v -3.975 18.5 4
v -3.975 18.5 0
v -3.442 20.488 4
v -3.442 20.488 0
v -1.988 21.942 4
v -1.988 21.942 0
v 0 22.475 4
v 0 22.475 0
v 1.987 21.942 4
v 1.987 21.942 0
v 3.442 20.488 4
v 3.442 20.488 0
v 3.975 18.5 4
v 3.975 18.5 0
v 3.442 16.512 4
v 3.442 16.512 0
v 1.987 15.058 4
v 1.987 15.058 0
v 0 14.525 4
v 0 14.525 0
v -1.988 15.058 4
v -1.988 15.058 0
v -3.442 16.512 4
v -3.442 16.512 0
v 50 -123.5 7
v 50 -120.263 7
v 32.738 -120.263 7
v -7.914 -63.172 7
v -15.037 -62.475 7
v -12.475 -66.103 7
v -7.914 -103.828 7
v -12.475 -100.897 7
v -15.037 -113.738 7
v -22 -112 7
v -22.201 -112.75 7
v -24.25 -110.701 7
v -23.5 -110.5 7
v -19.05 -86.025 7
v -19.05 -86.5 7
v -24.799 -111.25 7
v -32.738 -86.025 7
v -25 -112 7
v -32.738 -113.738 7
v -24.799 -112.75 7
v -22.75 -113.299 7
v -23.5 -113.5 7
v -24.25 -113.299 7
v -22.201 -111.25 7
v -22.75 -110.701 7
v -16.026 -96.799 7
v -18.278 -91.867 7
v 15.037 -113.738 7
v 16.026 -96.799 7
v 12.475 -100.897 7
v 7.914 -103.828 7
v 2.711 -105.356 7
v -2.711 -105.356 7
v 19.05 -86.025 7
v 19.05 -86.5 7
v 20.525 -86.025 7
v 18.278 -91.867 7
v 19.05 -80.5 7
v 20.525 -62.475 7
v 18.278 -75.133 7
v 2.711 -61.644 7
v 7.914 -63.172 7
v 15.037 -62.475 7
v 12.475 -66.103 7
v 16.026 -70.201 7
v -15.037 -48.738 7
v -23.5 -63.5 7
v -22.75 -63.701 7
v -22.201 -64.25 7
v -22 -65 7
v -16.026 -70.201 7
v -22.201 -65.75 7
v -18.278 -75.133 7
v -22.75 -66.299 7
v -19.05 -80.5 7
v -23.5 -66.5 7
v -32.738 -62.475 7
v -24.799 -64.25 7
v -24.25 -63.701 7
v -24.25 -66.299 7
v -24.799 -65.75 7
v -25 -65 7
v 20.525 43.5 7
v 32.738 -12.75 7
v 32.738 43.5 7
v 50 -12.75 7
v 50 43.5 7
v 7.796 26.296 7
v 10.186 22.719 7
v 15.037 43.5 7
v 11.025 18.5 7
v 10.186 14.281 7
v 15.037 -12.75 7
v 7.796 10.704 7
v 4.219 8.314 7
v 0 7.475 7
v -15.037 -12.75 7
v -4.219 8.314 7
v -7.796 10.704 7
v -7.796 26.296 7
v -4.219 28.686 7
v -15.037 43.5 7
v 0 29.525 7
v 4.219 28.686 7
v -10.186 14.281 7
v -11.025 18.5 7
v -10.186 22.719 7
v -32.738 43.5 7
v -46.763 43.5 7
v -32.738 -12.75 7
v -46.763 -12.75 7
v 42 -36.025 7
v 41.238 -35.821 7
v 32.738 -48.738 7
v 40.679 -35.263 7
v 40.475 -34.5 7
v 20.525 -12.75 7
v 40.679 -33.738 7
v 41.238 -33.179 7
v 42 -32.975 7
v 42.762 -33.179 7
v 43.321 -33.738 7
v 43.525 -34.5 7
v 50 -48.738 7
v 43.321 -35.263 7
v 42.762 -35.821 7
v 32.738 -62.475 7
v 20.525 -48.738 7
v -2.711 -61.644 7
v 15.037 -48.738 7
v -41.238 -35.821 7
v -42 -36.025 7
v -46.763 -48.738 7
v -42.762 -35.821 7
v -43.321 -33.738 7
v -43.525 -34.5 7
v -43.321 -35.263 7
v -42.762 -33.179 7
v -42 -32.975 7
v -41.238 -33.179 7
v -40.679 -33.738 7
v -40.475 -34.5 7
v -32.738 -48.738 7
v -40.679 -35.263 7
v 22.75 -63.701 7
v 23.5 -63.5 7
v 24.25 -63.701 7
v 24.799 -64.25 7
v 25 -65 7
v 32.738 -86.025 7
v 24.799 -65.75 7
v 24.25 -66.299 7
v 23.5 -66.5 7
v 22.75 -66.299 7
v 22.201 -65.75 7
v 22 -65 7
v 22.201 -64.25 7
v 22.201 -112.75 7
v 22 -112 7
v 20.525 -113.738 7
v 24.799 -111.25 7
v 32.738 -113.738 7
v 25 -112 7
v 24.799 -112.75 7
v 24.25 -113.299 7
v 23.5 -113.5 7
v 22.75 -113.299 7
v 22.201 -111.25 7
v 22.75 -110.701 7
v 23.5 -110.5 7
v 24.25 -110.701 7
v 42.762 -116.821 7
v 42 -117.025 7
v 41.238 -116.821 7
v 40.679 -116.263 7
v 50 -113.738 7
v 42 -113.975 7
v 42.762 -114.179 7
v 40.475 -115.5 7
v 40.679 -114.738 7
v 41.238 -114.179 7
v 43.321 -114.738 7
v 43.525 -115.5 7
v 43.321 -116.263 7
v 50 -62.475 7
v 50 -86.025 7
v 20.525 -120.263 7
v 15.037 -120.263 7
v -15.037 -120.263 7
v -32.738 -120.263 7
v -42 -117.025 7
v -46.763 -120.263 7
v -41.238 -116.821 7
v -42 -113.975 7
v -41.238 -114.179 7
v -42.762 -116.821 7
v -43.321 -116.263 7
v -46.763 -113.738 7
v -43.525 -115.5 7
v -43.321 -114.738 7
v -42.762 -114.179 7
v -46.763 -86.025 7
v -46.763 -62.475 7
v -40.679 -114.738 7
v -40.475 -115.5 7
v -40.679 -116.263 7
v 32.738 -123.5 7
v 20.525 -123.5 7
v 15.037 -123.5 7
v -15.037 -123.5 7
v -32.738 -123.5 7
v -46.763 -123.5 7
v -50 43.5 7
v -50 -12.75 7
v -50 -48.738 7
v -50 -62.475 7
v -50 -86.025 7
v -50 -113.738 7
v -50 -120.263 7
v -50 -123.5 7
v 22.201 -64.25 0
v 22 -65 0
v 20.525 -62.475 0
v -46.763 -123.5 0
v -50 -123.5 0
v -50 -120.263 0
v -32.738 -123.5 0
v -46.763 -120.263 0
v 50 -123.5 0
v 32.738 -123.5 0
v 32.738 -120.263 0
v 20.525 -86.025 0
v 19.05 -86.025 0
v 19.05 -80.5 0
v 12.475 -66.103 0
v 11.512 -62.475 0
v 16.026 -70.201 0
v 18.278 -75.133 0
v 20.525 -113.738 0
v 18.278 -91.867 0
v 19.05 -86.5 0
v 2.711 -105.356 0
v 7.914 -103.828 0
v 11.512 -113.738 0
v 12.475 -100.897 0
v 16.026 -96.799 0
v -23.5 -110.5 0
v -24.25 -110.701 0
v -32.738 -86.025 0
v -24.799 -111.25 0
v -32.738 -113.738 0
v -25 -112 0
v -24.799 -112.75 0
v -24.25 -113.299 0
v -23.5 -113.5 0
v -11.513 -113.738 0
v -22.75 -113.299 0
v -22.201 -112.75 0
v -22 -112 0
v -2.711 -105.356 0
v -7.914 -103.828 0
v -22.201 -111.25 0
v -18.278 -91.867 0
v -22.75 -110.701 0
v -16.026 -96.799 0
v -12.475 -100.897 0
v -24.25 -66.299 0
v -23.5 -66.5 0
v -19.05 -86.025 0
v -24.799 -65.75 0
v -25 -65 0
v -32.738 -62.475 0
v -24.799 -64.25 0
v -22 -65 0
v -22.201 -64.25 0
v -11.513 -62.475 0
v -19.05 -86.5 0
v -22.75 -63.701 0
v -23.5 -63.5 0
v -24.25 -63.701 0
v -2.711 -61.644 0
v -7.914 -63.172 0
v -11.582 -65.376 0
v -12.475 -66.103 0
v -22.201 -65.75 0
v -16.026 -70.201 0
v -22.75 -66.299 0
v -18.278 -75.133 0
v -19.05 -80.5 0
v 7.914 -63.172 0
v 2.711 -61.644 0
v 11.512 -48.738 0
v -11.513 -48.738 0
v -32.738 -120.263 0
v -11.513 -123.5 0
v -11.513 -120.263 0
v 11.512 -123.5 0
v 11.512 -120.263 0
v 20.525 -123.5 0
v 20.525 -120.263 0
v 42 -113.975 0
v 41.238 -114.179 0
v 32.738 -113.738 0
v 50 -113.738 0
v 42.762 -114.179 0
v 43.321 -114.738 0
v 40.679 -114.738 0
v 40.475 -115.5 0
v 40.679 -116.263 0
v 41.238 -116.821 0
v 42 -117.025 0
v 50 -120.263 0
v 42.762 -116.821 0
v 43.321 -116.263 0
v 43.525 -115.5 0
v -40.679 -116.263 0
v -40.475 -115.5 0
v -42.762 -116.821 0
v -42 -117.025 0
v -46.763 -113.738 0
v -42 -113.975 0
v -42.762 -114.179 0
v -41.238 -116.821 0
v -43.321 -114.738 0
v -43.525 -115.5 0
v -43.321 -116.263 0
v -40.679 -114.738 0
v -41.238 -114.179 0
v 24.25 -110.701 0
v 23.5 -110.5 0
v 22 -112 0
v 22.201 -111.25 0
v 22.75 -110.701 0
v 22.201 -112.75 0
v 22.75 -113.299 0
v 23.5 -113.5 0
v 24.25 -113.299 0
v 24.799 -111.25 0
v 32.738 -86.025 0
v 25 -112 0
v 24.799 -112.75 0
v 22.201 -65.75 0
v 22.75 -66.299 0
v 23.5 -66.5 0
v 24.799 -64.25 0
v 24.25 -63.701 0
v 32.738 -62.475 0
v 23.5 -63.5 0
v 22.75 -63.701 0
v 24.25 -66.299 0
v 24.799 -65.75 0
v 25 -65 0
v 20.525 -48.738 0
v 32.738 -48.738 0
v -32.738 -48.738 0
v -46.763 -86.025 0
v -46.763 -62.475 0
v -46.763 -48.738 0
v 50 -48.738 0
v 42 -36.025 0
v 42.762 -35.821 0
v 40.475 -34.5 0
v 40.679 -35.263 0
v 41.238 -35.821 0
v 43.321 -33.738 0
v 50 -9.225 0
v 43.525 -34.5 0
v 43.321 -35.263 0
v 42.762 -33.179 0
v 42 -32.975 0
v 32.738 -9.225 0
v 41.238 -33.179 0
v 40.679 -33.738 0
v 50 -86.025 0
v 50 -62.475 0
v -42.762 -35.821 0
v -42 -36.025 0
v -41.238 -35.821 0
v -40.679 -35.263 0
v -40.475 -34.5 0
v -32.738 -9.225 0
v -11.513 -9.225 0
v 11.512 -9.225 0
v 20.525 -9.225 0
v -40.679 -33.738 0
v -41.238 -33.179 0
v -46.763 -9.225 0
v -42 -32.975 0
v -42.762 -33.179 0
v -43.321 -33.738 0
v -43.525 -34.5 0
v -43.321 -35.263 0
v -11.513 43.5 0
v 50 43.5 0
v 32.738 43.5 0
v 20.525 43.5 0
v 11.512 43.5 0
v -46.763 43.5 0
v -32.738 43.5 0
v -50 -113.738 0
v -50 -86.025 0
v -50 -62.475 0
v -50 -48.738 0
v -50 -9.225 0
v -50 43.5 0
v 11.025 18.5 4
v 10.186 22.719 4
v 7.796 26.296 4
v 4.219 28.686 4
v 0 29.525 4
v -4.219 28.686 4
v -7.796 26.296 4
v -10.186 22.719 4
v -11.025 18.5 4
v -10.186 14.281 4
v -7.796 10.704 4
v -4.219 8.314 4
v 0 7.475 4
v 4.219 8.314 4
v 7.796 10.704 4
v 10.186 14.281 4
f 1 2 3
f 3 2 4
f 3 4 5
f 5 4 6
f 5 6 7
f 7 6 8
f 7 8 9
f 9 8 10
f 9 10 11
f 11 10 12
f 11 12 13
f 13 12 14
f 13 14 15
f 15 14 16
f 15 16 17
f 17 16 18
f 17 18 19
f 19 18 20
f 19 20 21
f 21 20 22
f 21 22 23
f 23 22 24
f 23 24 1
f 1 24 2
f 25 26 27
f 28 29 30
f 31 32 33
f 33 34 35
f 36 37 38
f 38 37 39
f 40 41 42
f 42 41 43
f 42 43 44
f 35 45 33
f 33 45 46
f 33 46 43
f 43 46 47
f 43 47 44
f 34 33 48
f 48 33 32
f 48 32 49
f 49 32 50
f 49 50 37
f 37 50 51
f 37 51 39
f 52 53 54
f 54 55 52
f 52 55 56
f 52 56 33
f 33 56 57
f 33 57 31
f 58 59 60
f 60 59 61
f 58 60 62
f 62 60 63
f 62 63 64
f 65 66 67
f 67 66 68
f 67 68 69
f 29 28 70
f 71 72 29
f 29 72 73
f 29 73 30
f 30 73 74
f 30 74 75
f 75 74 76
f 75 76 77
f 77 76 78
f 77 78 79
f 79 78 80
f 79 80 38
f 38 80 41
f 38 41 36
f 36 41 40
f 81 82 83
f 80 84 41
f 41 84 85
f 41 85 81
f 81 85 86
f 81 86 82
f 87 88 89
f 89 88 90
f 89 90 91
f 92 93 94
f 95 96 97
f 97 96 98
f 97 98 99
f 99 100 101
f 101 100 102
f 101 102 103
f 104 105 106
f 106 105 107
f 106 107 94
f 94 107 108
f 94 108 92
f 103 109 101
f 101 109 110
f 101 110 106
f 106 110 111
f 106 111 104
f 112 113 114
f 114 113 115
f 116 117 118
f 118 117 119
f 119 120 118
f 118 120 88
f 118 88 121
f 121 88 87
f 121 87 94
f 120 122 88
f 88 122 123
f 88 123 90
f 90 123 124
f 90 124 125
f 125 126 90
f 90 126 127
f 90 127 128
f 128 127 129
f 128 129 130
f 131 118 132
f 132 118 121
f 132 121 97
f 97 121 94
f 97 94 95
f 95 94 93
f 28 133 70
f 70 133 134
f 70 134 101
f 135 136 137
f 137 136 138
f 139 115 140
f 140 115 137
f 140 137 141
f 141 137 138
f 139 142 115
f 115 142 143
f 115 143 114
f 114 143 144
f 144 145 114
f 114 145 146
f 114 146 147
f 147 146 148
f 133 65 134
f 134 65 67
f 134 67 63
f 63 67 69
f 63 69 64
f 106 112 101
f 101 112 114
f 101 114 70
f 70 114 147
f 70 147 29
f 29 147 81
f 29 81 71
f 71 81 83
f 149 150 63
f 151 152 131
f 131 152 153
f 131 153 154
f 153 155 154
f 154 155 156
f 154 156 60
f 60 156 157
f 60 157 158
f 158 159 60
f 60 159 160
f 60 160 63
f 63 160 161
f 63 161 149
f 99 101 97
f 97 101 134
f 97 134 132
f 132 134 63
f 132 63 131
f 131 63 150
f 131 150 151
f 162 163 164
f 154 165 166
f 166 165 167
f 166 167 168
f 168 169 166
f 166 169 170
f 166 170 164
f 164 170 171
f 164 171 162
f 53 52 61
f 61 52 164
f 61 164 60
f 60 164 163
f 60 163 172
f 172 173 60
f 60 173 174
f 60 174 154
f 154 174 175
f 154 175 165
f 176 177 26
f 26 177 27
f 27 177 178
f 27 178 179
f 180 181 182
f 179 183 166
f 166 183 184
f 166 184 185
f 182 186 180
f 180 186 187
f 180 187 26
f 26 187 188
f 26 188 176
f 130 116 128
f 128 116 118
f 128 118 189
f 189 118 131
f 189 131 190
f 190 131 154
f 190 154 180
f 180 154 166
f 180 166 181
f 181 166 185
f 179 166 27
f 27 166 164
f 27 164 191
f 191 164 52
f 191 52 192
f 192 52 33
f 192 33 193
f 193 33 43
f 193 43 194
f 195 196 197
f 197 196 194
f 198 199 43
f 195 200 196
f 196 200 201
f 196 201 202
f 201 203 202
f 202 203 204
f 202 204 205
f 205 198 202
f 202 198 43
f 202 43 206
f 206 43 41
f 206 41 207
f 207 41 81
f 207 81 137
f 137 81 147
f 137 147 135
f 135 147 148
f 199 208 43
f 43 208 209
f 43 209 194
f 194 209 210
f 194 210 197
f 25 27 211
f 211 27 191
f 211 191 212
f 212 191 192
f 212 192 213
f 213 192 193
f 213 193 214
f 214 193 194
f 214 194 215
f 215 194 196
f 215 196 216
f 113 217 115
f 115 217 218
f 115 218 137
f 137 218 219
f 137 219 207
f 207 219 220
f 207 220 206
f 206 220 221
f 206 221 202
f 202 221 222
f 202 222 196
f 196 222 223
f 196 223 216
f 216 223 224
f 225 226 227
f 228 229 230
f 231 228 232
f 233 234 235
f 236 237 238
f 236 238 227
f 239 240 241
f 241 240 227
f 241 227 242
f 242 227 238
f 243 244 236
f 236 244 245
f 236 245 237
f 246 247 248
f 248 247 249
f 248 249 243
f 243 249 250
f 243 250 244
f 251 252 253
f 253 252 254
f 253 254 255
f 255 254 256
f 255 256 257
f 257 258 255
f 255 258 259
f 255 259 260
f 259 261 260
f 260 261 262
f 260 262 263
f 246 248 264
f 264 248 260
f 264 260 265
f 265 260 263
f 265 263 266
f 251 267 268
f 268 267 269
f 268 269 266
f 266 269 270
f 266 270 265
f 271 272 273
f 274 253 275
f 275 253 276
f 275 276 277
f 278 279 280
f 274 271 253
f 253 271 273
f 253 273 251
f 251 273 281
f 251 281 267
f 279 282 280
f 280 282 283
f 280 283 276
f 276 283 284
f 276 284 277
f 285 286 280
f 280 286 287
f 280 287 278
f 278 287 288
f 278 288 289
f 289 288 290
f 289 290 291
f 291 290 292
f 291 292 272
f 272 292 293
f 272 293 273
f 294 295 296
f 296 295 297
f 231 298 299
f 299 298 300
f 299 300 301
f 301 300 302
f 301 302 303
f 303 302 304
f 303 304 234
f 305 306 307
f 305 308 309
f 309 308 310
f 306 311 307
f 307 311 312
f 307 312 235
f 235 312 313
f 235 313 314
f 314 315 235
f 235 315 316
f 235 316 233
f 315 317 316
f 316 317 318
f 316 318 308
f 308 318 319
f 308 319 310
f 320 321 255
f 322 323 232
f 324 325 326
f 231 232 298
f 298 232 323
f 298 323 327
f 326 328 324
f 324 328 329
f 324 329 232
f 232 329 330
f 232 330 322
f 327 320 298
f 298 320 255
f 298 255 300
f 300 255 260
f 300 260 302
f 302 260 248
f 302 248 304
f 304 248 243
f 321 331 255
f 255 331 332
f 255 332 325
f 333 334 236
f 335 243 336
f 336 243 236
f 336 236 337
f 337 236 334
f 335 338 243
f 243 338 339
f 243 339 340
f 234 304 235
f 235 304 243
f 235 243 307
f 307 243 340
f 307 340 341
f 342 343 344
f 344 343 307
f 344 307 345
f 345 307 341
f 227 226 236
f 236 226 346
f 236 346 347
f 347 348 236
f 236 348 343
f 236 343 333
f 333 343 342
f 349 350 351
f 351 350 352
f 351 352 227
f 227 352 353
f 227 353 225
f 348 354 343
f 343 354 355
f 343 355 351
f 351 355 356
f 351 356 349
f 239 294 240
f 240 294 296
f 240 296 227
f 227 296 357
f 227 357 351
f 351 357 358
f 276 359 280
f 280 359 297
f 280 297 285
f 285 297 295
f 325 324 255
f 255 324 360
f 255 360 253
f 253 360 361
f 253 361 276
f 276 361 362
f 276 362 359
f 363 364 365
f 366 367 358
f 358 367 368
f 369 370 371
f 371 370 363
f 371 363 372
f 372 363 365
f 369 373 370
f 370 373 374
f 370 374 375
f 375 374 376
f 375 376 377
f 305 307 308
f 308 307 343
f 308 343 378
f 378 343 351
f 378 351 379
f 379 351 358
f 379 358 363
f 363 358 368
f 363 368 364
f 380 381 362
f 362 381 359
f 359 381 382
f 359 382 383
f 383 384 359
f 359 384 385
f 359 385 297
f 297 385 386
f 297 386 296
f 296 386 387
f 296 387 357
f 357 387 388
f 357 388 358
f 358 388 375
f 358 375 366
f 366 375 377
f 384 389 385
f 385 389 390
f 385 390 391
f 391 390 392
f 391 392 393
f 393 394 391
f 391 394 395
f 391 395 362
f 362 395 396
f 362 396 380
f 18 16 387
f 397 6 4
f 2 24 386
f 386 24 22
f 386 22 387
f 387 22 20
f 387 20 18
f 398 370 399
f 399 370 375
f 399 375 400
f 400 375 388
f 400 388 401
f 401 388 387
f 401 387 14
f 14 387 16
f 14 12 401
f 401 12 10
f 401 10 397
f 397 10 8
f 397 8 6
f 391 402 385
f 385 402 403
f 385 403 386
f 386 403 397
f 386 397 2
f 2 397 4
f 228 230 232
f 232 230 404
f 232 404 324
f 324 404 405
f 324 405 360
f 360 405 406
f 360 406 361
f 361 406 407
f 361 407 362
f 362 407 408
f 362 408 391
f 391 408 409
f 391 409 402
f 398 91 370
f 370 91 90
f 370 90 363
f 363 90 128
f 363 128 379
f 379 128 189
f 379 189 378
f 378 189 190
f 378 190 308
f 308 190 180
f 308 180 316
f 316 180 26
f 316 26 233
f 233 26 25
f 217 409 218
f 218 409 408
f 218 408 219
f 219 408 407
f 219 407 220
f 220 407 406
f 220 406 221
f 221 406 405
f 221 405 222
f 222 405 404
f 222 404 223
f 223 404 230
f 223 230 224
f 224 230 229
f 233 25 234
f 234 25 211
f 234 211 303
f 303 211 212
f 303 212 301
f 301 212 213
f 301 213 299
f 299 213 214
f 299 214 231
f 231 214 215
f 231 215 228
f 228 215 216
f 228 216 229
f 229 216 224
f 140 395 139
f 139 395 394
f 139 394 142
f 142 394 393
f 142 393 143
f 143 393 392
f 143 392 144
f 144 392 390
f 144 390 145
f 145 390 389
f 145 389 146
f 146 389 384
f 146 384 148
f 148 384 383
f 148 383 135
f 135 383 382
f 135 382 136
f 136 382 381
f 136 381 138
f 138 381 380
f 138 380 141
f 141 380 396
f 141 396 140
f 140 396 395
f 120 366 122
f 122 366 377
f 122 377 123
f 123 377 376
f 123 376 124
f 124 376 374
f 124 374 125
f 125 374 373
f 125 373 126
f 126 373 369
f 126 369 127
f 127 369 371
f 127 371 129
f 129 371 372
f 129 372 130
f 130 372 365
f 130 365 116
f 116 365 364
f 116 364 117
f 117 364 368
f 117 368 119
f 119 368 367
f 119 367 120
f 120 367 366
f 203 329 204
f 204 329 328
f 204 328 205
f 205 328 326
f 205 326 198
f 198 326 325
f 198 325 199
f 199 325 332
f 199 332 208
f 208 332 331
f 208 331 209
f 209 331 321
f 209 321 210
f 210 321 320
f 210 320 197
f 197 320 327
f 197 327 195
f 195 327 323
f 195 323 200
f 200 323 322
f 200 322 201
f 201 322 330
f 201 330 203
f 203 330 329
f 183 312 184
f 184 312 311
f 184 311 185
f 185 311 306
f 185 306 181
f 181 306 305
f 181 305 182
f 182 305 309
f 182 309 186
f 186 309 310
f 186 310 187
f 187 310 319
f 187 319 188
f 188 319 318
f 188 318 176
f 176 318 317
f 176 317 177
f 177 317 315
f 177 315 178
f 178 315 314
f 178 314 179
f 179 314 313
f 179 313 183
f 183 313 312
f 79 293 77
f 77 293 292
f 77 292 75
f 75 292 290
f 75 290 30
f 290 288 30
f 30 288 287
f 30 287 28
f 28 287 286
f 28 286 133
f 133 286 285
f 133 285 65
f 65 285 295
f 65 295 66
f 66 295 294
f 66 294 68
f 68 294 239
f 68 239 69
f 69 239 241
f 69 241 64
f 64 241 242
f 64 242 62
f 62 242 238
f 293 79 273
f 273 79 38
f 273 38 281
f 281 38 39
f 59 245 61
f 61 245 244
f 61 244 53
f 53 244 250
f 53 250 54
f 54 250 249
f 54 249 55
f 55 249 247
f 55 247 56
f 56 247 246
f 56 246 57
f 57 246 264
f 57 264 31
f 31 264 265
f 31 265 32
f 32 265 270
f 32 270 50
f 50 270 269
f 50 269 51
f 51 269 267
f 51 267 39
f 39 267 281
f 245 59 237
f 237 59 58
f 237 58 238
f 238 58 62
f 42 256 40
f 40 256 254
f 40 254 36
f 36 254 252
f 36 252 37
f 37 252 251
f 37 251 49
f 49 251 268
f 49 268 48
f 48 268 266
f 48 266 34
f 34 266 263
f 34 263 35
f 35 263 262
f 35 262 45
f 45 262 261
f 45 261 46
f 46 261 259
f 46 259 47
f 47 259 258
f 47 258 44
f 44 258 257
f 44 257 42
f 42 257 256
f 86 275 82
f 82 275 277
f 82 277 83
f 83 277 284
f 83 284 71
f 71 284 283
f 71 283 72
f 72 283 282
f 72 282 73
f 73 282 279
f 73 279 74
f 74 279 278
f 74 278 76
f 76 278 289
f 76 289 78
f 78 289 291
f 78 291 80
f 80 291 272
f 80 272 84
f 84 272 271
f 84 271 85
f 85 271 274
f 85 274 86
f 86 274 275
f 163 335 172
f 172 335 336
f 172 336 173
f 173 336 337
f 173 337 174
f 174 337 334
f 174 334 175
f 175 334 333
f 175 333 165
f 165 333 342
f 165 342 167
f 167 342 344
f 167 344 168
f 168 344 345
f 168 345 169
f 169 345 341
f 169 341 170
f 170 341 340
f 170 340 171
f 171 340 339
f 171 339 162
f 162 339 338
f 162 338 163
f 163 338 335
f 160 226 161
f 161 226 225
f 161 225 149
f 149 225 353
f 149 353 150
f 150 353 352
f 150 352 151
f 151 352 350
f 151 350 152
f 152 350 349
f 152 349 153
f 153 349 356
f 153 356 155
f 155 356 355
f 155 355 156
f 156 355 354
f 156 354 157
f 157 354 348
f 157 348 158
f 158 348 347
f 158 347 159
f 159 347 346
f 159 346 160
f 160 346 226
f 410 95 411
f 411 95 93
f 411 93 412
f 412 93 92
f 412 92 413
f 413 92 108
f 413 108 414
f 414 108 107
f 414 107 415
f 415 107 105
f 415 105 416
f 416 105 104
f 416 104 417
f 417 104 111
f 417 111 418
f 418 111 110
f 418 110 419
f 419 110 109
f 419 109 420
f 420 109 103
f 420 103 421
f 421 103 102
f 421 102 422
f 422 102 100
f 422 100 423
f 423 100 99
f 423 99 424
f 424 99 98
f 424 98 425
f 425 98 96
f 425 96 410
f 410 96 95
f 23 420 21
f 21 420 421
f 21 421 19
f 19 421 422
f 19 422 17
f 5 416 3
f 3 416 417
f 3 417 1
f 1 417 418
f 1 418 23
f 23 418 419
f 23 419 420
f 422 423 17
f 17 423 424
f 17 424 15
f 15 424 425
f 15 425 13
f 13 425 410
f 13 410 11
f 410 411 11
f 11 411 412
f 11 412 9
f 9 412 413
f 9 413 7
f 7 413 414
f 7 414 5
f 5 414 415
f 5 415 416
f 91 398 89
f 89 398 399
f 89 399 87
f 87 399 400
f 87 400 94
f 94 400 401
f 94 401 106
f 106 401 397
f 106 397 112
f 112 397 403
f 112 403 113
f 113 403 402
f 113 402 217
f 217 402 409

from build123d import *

# Parameters (mm, degrees)
SKETCH1_W           = 100
SKETCH1_H           = 247
SKETCH1_R           = 1.525
SKETCH1_R_2         = 3.975
SKETCH1_R_3         = 1.5
BOSS_EXTRUDE1_DEPTH = 7
SKETCH2_R           = 11.025
CUT_EXTRUDE1_DEPTH  = 3
SKETCH4_W           = 100
SKETCH4_H           = 80
CUT_EXTRUDE3_DEPTH  = 134.421325132


with BuildPart() as part:
    # Sketch1 → Boss-Extrude1 (new body)
    with BuildSketch(Plane.XY):
        Rectangle(SKETCH1_W, SKETCH1_H)
        with Locations((-42, -34.5)):
            Circle(SKETCH1_R, mode=Mode.SUBTRACT)
        with Locations((42, -34.5)):
            Circle(SKETCH1_R, mode=Mode.SUBTRACT)
        with Locations((-42, -115.5)):
            Circle(SKETCH1_R, mode=Mode.SUBTRACT)
        with Locations((42, -115.5)):
            Circle(SKETCH1_R, mode=Mode.SUBTRACT)
        with Locations((0, 18.5)):
            Circle(SKETCH1_R_2, mode=Mode.SUBTRACT)
        with Locations((42, 115.5)):
            Circle(SKETCH1_R, mode=Mode.SUBTRACT)
        with Locations((-42, 115.5)):
            Circle(SKETCH1_R, mode=Mode.SUBTRACT)
        with Locations((-23.5, -65)):
            Circle(SKETCH1_R_3, mode=Mode.SUBTRACT)
        with Locations((-23.5, -112)):
            Circle(SKETCH1_R_3, mode=Mode.SUBTRACT)
        with Locations((23.5, -112)):
            Circle(SKETCH1_R_3, mode=Mode.SUBTRACT)
        with Locations((23.5, -65)):
            Circle(SKETCH1_R_3, mode=Mode.SUBTRACT)
        with BuildLine():
            Line((-19.05, -80.5), (-19.05, -86.5))
            ThreePointArc((-19.05, -86.5), (0, -105.55), (19.05, -86.5))
            Line((19.05, -86.5), (19.05, -80.5))
            ThreePointArc((19.05, -80.5), (0, -61.45), (-19.05, -80.5))
        make_face(mode=Mode.SUBTRACT)
    extrude(amount=BOSS_EXTRUDE1_DEPTH)

    # Sketch2 → Cut-Extrude1 (cut)
    with BuildSketch(Plane.XY.offset(7)):
        with Locations((0, 18.5)):
            Circle(SKETCH2_R)
    extrude(amount=-CUT_EXTRUDE1_DEPTH, mode=Mode.SUBTRACT)

    # Sketch4 → Cut-Extrude3 (cut, through all)
    with BuildSketch(Plane.XY.offset(7)):
        with Locations((0, 83.5)):
            Rectangle(SKETCH4_W, SKETCH4_H)
    extrude(amount=-CUT_EXTRUDE3_DEPTH, mode=Mode.SUBTRACT)


solid = part.part
